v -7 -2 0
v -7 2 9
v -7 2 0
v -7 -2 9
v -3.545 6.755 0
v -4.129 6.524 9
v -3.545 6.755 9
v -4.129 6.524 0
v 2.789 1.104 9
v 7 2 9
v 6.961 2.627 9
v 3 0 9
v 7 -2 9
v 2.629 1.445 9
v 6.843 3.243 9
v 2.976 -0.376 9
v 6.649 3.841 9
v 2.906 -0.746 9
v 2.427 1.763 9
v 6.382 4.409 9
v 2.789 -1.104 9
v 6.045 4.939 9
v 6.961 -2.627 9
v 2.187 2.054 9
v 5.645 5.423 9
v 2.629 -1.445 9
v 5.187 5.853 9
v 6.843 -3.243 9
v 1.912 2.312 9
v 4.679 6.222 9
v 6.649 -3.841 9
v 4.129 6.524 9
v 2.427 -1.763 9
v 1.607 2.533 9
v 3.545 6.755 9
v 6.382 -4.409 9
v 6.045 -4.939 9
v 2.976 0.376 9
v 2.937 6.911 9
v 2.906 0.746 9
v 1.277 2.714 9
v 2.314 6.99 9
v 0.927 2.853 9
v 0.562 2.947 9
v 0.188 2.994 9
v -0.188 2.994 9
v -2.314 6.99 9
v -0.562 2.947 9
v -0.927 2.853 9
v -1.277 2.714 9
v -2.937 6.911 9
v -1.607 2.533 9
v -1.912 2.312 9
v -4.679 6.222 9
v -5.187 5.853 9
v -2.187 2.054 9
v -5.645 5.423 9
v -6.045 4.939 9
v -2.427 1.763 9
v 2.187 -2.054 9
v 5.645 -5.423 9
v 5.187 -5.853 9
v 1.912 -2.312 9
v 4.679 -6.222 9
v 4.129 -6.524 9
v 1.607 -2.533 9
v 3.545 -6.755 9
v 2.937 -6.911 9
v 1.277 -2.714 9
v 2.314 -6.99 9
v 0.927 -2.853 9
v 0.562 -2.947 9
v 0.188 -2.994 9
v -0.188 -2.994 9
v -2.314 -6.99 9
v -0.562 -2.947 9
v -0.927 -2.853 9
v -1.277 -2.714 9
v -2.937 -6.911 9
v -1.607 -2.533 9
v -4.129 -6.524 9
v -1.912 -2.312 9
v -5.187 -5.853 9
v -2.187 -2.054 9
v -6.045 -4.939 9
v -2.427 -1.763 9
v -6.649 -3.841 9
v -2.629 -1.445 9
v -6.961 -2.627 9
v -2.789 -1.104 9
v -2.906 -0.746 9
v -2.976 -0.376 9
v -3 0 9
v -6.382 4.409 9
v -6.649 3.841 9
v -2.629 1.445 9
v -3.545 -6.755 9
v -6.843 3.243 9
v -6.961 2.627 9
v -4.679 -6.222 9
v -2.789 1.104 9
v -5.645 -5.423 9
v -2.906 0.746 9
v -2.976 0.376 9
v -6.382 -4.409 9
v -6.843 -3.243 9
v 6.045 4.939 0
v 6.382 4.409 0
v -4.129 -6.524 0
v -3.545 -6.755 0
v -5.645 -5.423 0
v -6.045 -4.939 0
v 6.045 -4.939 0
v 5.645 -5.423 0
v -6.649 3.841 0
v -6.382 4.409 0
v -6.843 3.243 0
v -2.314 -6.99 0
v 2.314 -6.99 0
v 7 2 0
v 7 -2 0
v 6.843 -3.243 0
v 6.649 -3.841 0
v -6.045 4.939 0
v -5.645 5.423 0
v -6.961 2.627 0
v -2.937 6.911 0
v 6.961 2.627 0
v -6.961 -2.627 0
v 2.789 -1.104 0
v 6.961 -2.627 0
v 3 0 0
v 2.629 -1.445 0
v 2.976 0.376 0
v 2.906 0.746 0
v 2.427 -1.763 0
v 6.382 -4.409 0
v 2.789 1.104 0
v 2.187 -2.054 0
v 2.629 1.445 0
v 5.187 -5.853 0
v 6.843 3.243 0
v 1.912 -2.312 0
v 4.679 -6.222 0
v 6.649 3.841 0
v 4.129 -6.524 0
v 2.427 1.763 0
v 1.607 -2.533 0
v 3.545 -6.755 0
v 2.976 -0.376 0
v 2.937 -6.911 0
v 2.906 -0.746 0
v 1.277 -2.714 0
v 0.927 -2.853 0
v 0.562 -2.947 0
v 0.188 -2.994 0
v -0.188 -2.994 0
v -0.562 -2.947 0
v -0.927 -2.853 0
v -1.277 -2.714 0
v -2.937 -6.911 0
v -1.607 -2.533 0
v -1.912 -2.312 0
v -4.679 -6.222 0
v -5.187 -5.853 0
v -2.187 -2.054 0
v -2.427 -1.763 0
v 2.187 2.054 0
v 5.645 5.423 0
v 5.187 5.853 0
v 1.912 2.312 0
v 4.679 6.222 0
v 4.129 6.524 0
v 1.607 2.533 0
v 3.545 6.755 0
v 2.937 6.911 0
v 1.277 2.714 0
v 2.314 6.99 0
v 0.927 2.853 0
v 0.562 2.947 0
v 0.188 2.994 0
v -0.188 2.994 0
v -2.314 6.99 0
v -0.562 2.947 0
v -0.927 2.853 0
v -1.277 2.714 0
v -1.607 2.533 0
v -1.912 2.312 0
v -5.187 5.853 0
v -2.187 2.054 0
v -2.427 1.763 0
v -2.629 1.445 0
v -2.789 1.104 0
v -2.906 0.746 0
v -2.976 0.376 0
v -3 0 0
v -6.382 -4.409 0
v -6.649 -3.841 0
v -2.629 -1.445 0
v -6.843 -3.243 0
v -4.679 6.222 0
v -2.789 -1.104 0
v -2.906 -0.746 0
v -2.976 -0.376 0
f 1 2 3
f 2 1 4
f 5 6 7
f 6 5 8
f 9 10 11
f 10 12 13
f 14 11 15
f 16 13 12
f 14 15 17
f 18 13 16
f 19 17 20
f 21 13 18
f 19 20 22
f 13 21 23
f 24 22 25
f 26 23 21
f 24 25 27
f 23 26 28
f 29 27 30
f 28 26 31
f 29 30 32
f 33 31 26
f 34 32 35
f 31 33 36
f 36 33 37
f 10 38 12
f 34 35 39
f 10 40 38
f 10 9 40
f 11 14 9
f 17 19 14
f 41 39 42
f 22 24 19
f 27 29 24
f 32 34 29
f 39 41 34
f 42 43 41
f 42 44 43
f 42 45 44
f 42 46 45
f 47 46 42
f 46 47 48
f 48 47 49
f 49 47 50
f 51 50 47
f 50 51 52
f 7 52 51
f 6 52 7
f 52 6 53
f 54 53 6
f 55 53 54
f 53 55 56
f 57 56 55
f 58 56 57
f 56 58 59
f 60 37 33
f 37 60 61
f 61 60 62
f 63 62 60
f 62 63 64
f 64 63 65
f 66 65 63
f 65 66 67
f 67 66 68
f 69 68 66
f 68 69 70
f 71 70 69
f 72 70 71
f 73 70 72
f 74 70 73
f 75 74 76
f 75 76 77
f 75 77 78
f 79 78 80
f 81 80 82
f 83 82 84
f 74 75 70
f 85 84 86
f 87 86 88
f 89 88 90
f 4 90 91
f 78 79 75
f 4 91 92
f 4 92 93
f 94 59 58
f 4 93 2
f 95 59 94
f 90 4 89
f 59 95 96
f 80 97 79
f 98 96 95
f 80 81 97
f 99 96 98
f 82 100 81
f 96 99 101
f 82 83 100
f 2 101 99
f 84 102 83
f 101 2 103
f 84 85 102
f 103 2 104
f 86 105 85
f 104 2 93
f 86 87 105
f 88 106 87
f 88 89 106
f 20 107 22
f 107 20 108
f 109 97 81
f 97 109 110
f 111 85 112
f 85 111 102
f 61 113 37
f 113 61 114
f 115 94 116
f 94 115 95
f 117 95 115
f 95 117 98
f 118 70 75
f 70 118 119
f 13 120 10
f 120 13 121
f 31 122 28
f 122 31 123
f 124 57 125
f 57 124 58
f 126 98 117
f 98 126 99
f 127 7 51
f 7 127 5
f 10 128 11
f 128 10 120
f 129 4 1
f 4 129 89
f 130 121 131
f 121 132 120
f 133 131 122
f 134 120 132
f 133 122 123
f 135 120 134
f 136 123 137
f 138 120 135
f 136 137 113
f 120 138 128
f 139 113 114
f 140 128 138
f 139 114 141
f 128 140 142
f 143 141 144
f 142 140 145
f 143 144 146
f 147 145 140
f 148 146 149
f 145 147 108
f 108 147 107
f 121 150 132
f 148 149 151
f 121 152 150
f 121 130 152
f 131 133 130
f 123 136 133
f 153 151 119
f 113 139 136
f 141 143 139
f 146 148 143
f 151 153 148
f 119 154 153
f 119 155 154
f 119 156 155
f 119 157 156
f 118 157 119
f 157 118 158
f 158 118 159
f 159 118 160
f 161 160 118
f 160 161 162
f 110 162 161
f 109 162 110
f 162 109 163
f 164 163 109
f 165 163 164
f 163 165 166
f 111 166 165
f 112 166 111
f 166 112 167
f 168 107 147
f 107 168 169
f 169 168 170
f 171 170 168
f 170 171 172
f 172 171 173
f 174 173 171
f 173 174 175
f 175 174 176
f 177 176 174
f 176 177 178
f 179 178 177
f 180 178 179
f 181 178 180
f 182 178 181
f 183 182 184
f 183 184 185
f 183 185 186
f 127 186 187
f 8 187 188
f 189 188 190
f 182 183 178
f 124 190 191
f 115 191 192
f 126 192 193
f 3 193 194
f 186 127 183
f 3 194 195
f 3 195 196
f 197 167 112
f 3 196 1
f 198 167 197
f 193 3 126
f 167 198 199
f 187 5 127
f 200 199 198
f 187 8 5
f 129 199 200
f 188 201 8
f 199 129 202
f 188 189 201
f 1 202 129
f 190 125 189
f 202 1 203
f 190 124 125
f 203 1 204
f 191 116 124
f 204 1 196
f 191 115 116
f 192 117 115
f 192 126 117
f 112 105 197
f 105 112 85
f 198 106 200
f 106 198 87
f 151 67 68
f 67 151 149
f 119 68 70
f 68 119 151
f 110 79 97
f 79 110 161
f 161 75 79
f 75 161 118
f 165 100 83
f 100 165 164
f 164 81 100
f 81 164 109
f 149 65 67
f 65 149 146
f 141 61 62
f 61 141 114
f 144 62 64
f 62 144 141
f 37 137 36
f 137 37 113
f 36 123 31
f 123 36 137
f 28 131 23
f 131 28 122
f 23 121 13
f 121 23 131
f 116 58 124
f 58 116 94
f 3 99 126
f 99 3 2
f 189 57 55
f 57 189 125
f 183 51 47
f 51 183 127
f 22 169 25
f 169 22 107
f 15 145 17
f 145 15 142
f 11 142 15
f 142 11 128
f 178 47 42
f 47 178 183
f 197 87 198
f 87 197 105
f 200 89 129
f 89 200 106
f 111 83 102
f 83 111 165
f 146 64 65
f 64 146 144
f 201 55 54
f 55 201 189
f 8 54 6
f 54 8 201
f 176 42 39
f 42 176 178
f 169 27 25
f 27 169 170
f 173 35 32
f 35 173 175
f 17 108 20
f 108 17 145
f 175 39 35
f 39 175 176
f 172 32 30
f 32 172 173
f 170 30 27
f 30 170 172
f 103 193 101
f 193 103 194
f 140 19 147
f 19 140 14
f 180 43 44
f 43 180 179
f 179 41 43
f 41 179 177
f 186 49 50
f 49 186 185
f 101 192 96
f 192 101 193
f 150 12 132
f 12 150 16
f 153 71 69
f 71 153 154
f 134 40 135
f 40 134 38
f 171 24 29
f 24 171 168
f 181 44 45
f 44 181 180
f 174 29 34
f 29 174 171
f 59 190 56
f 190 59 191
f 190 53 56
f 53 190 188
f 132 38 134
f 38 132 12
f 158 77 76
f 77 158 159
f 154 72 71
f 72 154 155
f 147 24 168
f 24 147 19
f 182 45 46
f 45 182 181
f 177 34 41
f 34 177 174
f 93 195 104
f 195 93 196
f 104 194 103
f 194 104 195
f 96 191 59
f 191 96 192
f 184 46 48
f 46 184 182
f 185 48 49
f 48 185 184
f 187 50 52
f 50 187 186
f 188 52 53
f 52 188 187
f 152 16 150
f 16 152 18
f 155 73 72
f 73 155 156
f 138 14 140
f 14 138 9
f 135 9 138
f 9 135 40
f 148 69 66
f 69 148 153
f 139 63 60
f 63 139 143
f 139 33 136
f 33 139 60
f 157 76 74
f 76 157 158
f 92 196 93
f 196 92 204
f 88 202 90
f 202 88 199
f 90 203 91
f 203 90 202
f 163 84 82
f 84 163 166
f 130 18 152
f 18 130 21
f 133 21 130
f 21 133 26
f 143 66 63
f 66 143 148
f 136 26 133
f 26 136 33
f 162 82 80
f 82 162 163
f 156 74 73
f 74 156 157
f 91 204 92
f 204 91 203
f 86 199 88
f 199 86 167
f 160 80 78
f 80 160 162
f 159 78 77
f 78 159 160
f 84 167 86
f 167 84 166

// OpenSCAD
$fn = 50;


difference() {
	union() {
		translate(v = [0, 0, 0]) {
			rotate(a = [0, 0, 0]) {
				hull() {
					translate(v = [-2.0000000000, 2.0000000000, 0]) {
						rotate(a = [0, 0, 0]) {
							translate(v = [0, 0, 0]) {
								rotate(a = [0, 0, 0]) {
									cylinder(h = 9, r = 5);
								}
							}
						}
					}
					translate(v = [2.0000000000, 2.0000000000, 0]) {
						rotate(a = [0, 0, 0]) {
							translate(v = [0, 0, 0]) {
								rotate(a = [0, 0, 0]) {
									cylinder(h = 9, r = 5);
								}
							}
						}
					}
					translate(v = [-2.0000000000, -2.0000000000, 0]) {
						rotate(a = [0, 0, 0]) {
							translate(v = [0, 0, 0]) {
								rotate(a = [0, 0, 0]) {
									cylinder(h = 9, r = 5);
								}
							}
						}
					}
					translate(v = [2.0000000000, -2.0000000000, 0]) {
						rotate(a = [0, 0, 0]) {
							translate(v = [0, 0, 0]) {
								rotate(a = [0, 0, 0]) {
									cylinder(h = 9, r = 5);
								}
							}
						}
					}
				}
			}
		}
	}
	union() {
		translate(v = [0.0000000000, 0.0000000000, 0]) {
			rotate(a = [0, 0, 0]) {
				translate(v = [0, 0, -50]) {
					rotate(a = [0, 0, 0]) {
						cylinder(h = 100, r = 3.0000000000);
					}
				}
			}
		}
	}
}
